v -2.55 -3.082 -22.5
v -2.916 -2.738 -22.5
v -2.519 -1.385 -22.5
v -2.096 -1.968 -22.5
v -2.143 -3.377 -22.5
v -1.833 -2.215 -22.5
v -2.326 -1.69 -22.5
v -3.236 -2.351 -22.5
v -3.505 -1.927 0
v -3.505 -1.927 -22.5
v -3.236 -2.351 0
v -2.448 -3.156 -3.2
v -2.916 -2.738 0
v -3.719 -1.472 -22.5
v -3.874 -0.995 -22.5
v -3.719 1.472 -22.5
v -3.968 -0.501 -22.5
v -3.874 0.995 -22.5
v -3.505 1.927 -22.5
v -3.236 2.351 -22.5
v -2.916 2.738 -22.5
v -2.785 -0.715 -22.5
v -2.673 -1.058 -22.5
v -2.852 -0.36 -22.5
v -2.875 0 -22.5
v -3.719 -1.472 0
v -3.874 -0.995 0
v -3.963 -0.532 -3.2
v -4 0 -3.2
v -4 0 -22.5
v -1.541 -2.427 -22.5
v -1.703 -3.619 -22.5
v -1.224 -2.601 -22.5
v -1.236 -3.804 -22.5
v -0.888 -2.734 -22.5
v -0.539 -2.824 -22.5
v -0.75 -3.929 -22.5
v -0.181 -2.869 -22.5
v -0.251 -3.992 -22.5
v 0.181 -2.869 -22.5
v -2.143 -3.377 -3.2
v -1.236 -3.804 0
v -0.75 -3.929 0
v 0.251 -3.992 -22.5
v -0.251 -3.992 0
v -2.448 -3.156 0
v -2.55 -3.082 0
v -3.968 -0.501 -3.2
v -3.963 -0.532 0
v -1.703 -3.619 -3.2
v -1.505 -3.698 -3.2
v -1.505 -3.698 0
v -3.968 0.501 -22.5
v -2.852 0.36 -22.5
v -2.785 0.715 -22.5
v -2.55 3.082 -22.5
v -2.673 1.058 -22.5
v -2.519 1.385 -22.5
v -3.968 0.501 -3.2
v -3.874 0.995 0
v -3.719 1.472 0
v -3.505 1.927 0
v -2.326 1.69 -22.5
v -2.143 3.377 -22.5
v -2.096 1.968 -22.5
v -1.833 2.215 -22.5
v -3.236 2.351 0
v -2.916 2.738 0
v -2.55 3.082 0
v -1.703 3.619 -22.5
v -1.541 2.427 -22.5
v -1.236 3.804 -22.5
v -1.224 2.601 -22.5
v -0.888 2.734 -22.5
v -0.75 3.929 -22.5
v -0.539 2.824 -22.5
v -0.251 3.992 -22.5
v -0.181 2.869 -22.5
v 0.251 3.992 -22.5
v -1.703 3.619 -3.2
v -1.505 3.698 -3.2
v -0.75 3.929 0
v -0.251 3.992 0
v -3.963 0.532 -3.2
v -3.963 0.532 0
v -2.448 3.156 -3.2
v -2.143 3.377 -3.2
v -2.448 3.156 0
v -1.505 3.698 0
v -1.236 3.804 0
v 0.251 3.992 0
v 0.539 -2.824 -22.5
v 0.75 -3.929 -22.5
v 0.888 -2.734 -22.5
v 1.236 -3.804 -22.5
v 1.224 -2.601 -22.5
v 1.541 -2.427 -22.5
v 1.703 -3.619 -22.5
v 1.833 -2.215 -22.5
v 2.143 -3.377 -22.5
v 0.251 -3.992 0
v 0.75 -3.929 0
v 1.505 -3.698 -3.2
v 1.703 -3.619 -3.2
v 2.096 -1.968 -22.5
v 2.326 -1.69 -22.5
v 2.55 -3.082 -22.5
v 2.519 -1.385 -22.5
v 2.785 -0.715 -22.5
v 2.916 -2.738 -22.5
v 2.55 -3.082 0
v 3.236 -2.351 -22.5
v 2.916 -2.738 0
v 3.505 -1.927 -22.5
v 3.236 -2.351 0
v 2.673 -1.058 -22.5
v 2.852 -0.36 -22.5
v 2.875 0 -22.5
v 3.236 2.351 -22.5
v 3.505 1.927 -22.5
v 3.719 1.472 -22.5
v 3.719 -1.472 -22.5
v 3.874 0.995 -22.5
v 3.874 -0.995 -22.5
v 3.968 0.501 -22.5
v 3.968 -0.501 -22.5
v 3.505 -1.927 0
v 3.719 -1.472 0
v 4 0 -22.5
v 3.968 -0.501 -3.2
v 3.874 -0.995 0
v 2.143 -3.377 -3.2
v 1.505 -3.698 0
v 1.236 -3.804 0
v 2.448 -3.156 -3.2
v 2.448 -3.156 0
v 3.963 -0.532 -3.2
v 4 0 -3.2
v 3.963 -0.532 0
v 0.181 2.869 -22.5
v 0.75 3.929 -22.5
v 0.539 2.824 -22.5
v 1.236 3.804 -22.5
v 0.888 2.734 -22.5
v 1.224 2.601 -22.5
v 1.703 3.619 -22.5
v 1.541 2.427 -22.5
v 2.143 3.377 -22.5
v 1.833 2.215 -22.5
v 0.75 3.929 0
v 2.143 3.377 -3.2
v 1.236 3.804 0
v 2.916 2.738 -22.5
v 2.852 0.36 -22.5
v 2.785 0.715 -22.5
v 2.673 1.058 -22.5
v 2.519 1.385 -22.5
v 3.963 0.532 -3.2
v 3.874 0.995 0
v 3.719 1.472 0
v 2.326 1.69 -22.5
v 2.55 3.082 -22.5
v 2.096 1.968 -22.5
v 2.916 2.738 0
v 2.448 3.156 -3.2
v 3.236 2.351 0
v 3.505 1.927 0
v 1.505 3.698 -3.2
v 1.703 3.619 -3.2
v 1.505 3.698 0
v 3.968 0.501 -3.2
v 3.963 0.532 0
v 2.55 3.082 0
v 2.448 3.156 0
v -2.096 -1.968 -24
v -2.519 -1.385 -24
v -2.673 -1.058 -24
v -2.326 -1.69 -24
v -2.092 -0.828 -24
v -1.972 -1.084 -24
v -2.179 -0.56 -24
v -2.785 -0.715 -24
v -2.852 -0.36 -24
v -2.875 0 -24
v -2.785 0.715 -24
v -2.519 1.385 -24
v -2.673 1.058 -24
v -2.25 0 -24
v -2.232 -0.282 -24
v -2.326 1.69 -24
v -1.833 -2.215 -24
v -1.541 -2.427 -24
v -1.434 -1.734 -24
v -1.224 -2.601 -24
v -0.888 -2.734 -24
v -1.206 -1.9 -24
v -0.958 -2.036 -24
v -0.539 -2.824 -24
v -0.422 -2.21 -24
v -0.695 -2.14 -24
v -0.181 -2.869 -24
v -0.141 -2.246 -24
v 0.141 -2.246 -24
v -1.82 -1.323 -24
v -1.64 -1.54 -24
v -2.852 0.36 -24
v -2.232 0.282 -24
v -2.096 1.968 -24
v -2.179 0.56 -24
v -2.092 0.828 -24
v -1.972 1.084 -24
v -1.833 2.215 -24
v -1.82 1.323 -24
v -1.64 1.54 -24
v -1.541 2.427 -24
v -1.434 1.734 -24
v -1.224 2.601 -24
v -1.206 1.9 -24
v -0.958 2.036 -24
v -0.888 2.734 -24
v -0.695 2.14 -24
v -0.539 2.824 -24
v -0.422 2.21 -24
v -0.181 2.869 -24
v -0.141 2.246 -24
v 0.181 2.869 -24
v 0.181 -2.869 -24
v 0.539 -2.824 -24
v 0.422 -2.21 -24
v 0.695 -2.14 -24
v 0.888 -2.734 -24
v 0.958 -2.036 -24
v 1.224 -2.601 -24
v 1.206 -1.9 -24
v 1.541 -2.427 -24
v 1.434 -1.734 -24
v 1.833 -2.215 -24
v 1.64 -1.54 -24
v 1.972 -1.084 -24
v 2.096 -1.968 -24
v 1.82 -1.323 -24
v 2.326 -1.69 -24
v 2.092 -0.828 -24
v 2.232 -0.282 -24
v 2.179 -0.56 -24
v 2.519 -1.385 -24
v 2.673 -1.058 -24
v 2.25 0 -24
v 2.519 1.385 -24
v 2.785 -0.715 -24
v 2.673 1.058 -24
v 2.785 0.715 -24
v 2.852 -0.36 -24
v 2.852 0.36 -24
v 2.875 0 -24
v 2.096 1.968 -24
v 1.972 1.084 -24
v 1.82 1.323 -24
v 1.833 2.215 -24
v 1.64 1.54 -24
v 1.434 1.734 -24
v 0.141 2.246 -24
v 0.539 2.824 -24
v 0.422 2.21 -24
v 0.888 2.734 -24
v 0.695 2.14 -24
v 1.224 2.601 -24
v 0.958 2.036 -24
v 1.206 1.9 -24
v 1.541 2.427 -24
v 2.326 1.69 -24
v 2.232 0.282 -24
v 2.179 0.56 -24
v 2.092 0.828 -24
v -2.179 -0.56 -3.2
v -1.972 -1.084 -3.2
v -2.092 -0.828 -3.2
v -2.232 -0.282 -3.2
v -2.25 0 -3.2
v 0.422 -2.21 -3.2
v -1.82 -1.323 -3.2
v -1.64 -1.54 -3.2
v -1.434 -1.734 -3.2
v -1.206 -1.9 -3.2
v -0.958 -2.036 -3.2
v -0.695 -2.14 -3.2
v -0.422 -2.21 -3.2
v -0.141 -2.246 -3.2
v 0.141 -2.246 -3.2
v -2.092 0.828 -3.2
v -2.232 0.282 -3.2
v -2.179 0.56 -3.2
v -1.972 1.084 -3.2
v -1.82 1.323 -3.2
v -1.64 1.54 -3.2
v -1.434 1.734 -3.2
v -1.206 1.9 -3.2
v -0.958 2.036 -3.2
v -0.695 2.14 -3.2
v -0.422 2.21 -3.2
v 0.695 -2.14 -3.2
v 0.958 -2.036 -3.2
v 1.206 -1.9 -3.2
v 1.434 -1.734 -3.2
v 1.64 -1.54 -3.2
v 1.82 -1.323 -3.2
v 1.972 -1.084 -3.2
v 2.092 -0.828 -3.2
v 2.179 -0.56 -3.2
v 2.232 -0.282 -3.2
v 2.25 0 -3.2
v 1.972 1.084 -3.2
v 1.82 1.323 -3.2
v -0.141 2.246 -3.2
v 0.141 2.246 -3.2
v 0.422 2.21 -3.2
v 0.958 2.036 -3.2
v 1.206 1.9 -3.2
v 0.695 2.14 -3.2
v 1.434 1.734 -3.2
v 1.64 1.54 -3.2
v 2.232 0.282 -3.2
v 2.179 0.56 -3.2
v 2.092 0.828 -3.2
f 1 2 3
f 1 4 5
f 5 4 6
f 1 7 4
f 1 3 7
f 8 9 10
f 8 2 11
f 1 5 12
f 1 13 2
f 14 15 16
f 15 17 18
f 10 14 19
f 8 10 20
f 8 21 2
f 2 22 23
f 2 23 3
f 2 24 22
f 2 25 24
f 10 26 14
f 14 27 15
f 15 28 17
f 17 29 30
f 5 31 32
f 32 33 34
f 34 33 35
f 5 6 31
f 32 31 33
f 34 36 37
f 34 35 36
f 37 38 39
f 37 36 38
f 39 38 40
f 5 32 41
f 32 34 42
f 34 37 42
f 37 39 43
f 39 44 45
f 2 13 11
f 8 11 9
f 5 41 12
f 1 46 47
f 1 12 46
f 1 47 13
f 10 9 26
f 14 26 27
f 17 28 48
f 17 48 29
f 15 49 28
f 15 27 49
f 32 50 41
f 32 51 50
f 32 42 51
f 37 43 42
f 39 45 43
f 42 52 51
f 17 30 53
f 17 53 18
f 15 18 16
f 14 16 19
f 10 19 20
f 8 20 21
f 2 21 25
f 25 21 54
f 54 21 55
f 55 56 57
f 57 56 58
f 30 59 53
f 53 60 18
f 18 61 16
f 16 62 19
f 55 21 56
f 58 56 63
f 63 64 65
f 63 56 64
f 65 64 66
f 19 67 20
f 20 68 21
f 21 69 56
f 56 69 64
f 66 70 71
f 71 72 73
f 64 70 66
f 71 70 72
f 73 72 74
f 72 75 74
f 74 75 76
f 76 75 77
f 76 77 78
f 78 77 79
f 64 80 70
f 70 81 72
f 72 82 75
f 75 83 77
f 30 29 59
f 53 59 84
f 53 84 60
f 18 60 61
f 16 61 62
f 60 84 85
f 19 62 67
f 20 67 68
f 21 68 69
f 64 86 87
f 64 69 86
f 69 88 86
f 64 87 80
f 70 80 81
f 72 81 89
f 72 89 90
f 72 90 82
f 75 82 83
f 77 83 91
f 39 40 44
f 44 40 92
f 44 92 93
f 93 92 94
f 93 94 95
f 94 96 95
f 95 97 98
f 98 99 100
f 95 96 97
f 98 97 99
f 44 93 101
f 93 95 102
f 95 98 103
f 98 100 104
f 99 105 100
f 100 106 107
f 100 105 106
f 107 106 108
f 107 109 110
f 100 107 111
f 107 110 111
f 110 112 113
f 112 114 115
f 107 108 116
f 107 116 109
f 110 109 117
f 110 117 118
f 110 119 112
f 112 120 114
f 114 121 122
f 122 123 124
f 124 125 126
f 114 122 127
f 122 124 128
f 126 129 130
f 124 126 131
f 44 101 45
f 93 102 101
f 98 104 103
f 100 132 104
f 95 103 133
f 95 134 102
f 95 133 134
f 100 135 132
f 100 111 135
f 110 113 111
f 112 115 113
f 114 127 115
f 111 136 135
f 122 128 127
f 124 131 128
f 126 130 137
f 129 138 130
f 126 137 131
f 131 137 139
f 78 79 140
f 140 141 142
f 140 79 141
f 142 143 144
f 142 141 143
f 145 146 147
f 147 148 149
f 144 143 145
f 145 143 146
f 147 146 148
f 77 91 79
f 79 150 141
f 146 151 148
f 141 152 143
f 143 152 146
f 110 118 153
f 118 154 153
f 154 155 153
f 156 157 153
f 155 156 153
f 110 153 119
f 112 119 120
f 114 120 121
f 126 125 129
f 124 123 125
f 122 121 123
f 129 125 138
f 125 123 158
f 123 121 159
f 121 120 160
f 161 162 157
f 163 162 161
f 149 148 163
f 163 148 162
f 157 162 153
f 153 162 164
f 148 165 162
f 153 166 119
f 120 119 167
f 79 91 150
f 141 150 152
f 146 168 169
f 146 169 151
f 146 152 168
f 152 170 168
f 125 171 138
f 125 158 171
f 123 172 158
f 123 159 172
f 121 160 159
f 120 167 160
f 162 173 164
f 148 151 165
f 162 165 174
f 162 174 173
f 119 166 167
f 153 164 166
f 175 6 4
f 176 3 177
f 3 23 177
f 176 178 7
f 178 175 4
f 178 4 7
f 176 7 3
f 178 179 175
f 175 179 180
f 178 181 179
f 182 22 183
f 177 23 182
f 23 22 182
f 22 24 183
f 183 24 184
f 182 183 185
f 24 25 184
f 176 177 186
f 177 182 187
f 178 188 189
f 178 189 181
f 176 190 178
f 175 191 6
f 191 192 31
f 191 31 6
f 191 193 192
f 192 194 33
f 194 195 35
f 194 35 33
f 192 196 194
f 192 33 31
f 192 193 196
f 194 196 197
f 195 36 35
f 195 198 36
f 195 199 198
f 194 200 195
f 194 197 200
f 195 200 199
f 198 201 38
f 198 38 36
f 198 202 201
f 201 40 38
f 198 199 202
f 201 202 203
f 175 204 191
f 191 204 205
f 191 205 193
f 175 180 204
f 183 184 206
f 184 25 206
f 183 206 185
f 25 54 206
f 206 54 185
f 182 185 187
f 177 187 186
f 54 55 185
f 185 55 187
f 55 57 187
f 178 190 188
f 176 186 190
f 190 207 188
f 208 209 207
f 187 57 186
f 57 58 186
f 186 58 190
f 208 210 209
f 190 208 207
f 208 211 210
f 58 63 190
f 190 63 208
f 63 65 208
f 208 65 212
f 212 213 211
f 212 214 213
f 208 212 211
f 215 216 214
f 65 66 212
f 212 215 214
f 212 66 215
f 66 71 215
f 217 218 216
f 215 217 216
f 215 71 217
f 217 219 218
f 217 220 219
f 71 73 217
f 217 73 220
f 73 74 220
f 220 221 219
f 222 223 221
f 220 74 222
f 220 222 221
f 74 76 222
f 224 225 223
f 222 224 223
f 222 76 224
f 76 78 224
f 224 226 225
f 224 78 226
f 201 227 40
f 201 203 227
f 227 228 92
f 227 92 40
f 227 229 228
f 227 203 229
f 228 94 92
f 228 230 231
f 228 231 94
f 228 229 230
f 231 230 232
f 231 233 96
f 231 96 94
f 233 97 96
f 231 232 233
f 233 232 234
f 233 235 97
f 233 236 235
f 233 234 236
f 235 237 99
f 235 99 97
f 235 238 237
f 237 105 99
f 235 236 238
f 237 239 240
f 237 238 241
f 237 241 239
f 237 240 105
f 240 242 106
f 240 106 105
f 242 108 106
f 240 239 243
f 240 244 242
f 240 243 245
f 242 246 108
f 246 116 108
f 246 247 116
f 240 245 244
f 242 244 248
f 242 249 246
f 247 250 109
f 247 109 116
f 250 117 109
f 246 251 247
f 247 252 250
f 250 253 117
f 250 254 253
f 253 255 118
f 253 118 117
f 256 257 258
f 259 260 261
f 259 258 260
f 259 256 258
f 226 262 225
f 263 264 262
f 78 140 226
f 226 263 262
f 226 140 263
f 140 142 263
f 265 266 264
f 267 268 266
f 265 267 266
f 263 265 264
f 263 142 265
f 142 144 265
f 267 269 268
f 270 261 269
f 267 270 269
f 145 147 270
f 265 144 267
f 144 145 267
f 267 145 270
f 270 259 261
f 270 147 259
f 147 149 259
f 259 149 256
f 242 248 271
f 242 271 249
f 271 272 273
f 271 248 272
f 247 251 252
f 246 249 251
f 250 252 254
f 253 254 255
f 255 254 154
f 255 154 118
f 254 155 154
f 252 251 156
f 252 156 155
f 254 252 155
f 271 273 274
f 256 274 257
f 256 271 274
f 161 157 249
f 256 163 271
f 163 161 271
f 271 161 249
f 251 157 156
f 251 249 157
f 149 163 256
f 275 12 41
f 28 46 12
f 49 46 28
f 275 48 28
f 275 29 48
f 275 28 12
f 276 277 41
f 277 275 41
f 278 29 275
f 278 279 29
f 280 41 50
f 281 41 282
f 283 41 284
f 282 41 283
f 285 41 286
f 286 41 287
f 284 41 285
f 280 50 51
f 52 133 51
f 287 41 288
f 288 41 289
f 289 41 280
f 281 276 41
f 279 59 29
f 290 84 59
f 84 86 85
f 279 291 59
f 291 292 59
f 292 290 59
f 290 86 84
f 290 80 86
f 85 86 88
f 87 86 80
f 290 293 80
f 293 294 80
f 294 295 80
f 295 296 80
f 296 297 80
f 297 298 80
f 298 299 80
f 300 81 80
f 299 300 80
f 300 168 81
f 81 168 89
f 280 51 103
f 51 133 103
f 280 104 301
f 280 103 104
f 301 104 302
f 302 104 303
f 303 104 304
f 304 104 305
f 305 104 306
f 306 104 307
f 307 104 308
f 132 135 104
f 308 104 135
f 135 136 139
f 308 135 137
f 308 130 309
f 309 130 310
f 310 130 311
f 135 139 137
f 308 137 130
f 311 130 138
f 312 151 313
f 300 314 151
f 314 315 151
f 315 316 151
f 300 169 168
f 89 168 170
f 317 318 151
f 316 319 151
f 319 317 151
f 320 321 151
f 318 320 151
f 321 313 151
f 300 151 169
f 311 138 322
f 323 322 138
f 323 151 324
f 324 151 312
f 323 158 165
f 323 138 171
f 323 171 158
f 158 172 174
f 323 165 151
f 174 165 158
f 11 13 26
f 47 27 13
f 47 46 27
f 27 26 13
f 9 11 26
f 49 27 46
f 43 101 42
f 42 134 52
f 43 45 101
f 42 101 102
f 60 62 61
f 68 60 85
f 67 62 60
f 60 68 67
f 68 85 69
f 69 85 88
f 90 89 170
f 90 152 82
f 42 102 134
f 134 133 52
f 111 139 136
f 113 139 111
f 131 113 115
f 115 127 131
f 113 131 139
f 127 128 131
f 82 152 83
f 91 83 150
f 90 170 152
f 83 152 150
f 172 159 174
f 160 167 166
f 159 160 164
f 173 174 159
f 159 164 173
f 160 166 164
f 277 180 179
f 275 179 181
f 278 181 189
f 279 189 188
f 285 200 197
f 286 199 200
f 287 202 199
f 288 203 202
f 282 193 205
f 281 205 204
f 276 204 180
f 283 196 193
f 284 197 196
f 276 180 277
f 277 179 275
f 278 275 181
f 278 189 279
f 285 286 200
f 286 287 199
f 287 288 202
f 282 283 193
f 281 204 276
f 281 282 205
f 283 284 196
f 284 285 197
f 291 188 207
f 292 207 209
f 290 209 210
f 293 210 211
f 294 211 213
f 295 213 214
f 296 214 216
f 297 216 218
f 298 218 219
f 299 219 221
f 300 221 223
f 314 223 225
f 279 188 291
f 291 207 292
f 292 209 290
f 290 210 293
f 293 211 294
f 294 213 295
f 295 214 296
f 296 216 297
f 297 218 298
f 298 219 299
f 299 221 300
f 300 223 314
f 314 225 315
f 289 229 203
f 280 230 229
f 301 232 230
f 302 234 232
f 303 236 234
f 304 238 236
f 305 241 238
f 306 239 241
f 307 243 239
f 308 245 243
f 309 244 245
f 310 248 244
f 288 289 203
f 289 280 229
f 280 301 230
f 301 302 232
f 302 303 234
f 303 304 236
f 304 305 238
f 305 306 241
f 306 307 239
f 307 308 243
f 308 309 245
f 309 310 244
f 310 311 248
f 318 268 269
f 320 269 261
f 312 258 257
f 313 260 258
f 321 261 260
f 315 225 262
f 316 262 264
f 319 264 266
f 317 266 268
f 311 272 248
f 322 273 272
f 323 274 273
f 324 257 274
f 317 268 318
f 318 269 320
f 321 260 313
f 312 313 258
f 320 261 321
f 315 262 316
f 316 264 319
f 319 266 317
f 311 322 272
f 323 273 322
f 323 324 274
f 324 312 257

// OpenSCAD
$fn = 50;

difference() {
	union() {
		translate(v = [0, 0, -22.5]) {
			cylinder(h = 25.5, r = 4.0);
		}
		#translate(v = [0, 0, -24.0]) {
			cylinder(h = 24, r = 2.875);
		}
	}
	union() {
		translate(v = [0, 0, 0]) {
			rotate(a = [0, 0, 0]) {
				difference() {
					union() {
						translate(v = [0, 0, -3.2]) {
							linear_extrude(height = 3.2) {
								polygon(points = [[4.2698, 0.0], [2.1349000000000005, 3.697755269078796], [-2.134899999999999, 3.6977552690787965], [-4.2698, 5.228996902999369e-16], [-2.134900000000002, -3.6977552690787956], [2.1348999999999974, -3.697755269078798]]);
							}
						}
					}
					union();
				}
			}
		}
		#cylinder(h = 3, r = 5.0);
		#translate(v = [0, 0, -100.0]) {
			cylinder(h = 200, r = 2.25);
		}
	}
}
